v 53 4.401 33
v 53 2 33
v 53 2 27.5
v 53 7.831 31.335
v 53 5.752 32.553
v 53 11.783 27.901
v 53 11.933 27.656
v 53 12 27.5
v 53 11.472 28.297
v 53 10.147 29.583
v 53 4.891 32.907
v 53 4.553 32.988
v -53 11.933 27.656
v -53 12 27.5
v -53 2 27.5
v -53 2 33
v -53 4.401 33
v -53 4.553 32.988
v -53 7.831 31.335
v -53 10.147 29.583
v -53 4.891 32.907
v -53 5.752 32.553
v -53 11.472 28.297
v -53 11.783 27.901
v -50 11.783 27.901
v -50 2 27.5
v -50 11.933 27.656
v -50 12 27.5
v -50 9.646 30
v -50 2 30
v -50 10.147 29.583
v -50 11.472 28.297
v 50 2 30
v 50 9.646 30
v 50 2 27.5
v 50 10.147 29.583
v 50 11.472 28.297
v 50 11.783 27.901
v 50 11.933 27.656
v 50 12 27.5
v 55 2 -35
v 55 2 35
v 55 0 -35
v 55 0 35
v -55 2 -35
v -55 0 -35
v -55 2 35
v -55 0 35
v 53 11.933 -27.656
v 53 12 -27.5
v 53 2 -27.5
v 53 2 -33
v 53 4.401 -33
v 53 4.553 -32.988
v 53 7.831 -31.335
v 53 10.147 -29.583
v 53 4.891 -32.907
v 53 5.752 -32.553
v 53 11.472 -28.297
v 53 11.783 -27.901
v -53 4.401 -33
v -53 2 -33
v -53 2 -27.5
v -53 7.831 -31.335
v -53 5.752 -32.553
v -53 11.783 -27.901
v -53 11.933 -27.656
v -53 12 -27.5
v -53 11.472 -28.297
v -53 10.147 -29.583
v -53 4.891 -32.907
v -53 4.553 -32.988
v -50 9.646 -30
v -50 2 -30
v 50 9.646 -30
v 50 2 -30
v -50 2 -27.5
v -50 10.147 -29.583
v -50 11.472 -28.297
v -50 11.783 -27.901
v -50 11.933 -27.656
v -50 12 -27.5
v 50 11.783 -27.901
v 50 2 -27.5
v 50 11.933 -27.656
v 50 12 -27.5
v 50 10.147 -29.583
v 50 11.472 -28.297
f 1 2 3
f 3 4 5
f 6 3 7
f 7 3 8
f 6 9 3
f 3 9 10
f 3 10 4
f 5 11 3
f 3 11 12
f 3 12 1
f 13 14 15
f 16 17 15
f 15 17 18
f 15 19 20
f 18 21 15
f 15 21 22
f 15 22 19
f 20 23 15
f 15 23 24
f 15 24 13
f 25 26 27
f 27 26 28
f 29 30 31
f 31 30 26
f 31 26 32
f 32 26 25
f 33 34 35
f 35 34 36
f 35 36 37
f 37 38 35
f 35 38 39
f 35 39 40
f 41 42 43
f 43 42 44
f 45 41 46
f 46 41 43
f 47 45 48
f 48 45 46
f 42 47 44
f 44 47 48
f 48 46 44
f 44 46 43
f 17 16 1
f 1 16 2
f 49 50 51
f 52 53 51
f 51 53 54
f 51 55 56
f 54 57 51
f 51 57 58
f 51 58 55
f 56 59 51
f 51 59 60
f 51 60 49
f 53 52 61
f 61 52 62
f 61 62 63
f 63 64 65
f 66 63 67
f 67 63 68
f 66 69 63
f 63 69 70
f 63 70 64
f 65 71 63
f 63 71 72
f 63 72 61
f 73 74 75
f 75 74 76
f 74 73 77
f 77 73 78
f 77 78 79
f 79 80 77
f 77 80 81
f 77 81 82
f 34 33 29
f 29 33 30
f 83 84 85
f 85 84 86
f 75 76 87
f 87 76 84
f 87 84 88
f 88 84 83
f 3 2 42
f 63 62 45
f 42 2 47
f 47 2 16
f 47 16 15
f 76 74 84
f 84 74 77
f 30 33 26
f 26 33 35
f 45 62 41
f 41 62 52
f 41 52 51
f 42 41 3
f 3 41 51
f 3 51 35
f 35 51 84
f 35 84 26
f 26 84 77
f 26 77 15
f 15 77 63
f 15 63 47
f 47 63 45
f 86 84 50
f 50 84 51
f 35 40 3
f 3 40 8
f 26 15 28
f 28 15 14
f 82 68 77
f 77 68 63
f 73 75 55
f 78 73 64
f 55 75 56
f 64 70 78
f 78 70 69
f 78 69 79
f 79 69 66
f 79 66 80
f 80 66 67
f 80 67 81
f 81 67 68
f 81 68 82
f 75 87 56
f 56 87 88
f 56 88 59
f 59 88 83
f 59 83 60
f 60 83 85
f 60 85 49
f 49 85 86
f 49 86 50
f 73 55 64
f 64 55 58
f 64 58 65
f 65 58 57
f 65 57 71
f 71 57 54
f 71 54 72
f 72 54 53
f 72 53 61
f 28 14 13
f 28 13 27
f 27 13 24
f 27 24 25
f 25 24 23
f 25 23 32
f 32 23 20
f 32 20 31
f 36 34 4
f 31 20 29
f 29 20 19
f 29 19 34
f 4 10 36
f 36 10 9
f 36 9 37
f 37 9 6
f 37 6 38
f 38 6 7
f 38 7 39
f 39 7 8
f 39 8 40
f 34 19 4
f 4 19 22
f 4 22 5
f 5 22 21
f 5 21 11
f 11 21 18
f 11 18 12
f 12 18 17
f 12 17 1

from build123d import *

# Parameters (mm, degrees)
CROQUIS1_W              = 110
CROQUIS1_H              = 70
SALIENTE_EXTRUIR1_DEPTH = 2
CROQUIS2_W              = 106
CROQUIS2_H              = 66
CROQUIS2_W_2            = 100
CROQUIS2_H_2            = 60
SALIENTE_EXTRUIR2_DEPTH = 10
CROQUIS3_W              = 110
CROQUIS3_H              = 55
CORTAR_EXTRUIR1_DEPTH   = 10
REDONDEO1_START         = -53
REDONDEO1_DEPTH         = 106


with BuildPart() as part:
    # Croquis1 → Saliente-Extruir1 (new body)
    with BuildSketch(Plane(origin=(0, 0, 0), x_dir=(1, 0, 0), z_dir=(0, 1, 0))):
        Rectangle(CROQUIS1_W, CROQUIS1_H)
    extrude(amount=SALIENTE_EXTRUIR1_DEPTH)

    # Croquis2 → Saliente-Extruir2 (add)
    with BuildSketch(Plane(origin=(0, 2, 0), x_dir=(1, 0, 0), z_dir=(0, 1, 0))):
        Rectangle(CROQUIS2_W, CROQUIS2_H)
        Rectangle(CROQUIS2_W_2, CROQUIS2_H_2, mode=Mode.SUBTRACT)
    extrude(amount=SALIENTE_EXTRUIR2_DEPTH)

    # Croquis3 → Cortar-Extruir1 (cut)
    with BuildSketch(Plane(origin=(0, 12, 0), x_dir=(1, 0, 0), z_dir=(0, 1, 0))):
        Rectangle(CROQUIS3_W, CROQUIS3_H)
    extrude(amount=-CORTAR_EXTRUIR1_DEPTH, mode=Mode.SUBTRACT)

    # Redondeo1: read off the stored shape, not the designer's step
    # Redondeo1 outline → Redondeo1 (cut)
    with BuildSketch(Plane.YZ.offset(REDONDEO1_START)):
        with BuildLine():
            Line((4.400657923, -33), (12, -33))
            Line((12, -33), (12, -27.5))
            add(Edge.make_bspline(
                [(12, -27.5), (11.925717186, -27.725800205), (11.717980707, -28.062974077), (11.294012734, -28.57513658), (10.552168001, -29.267993446), (8.343872585, -31.051001592), (6.627785298, -32.237452301), (5.39060754, -32.810235795), (4.741950411, -33), (4.400657923, -33)],
                knots=[0.589454173, 0.589454173, 0.589454173, 0.589454173, 0.589454173, 0.589454173, 1, 1, 1, 1, 1.589454173, 1.589454173, 1.589454173, 1.589454173, 1.589454173, 1.589454173], degree=5, weights=[1, 1, 1.007998589, 1.001618266, 1, 1, 0.973408773, 1.007044093, 1, 1]))
        make_face()
        with BuildLine():
            Line((12, 33), (4.400657923, 33))
            add(Edge.make_bspline(
                [(4.400657923, 33), (4.741950411, 33), (5.39060754, 32.810235795), (6.627785298, 32.237452301), (8.343872585, 31.051001592), (10.552168001, 29.267993446), (11.294012734, 28.57513658), (11.717980707, 28.062974077), (11.925717186, 27.725800205), (12, 27.5)],
                knots=[0, 0, 0, 0, 0, 0, 0.589454173, 0.589454173, 0.589454173, 0.589454173, 1, 1, 1, 1, 1, 1], degree=5, weights=[1, 1, 1.007044093, 0.973408773, 1, 1, 1.001618266, 1.007998589, 1, 1]))
            Line((12, 27.5), (12, 33))
        make_face()
    extrude(amount=REDONDEO1_DEPTH, mode=Mode.SUBTRACT)


solid = part.part
